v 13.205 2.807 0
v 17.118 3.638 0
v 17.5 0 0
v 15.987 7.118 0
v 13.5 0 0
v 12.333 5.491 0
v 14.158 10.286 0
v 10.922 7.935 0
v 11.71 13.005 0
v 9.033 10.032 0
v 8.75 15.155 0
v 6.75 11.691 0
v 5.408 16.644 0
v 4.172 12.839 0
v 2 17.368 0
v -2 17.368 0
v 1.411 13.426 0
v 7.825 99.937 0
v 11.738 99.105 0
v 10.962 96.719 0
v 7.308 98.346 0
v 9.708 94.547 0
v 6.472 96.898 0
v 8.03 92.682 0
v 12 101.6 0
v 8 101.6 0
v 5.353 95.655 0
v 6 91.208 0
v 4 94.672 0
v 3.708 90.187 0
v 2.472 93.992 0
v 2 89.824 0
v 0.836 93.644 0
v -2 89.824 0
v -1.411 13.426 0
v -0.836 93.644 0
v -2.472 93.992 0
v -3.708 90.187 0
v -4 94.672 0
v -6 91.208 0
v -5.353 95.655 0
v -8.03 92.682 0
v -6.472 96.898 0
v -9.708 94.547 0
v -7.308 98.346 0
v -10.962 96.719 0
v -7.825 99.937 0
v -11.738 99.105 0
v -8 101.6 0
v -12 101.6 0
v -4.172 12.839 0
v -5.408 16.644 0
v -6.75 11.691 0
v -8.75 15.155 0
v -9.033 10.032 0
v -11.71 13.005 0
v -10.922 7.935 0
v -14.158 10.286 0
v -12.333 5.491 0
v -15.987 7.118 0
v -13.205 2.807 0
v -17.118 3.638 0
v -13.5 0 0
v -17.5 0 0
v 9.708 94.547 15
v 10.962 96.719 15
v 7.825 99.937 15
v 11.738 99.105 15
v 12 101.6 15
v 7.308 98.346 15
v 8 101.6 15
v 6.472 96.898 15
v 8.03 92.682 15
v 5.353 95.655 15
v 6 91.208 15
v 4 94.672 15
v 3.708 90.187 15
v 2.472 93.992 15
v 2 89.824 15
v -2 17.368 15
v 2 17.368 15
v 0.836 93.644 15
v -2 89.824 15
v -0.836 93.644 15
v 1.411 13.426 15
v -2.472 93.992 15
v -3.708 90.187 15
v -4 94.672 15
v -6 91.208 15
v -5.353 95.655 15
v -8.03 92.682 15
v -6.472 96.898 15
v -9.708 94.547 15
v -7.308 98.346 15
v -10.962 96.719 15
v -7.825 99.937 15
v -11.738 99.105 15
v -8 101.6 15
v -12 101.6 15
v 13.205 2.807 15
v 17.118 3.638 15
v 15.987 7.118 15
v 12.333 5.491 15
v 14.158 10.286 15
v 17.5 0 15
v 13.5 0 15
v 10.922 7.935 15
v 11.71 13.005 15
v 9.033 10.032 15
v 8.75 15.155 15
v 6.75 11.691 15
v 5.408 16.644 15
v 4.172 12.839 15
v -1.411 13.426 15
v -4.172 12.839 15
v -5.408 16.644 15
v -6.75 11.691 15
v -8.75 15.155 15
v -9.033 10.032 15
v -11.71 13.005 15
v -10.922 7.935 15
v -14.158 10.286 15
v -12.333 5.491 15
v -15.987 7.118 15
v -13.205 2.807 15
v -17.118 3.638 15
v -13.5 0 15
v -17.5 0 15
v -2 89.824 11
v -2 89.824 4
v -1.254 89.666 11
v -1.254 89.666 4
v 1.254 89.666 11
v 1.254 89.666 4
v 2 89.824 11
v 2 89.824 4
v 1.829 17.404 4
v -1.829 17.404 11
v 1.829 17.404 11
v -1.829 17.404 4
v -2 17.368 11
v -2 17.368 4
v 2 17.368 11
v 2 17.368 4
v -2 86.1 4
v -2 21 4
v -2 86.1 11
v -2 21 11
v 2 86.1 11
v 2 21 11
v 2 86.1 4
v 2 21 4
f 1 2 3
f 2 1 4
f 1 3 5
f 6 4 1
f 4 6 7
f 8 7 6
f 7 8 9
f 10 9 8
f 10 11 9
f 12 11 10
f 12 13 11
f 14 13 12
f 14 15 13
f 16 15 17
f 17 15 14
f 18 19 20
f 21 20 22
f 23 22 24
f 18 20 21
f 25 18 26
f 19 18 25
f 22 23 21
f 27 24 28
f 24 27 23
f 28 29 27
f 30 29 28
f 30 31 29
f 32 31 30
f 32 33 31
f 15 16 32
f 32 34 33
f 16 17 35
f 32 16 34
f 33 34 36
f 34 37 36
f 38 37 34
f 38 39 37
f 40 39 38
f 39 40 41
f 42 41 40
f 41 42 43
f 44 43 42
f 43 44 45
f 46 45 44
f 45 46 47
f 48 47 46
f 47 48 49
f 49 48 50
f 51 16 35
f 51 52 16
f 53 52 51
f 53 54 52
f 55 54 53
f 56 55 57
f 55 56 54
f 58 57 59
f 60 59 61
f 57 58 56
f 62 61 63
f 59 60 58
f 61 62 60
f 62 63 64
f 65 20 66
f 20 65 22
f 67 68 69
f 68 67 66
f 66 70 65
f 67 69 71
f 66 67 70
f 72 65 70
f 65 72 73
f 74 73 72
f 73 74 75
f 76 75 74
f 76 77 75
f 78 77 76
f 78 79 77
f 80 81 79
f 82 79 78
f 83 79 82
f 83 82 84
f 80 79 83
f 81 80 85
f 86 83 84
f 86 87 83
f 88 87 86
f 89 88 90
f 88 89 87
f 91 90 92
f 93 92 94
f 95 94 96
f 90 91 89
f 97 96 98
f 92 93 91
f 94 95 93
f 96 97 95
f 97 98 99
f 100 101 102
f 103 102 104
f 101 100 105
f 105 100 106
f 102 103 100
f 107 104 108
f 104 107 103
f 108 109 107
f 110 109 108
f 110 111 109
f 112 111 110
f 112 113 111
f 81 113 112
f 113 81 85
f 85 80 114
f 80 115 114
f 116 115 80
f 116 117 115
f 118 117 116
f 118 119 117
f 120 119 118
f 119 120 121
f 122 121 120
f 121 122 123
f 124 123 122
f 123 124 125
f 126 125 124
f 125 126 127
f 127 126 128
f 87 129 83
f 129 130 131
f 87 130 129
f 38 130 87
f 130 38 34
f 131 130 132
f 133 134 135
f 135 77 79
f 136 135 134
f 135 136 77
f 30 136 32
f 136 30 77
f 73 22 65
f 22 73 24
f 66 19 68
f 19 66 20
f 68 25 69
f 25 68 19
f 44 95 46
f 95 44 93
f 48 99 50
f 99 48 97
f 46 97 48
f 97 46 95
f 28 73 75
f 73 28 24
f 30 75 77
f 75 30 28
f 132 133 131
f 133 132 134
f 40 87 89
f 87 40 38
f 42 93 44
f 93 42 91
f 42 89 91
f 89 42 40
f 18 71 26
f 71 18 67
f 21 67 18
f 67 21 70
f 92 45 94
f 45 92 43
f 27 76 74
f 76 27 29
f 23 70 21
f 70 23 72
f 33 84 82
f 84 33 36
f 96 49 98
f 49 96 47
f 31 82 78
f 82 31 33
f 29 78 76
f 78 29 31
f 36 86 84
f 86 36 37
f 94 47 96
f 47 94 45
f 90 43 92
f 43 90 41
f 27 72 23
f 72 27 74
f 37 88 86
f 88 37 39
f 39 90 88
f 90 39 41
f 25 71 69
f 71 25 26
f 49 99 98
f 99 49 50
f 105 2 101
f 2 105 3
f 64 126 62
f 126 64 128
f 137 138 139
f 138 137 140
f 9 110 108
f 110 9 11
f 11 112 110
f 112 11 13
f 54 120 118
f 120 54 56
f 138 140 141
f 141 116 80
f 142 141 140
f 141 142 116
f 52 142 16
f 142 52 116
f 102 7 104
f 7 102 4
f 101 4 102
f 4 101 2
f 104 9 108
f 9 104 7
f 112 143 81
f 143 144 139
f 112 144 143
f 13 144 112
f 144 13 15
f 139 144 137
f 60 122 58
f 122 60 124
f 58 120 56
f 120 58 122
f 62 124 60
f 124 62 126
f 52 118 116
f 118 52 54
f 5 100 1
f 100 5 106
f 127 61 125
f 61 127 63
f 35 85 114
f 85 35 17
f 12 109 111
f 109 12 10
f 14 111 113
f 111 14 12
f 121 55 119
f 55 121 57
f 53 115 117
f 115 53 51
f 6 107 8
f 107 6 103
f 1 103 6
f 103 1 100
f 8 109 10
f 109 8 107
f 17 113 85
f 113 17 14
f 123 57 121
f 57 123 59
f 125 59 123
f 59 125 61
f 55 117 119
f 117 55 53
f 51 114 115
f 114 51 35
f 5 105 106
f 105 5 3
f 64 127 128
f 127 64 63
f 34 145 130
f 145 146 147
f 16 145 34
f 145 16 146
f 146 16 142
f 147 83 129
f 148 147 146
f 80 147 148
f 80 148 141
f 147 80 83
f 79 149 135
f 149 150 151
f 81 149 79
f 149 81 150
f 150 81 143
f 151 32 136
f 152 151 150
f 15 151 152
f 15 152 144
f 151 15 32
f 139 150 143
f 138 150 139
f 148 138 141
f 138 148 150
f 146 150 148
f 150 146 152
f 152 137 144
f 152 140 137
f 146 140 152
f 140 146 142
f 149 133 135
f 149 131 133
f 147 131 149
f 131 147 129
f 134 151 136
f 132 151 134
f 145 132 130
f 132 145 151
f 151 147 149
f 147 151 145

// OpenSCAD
// Parallel loop conductor standoff - VE3XEC

// Secure to conductors with zip ties
// Maybe wrap conductors with silicone tape to prevent slippage

// Configuration
wall_thickness = 4; // Overall robustitude of this magnificent assemblage
spacing = 101.6; // Centre-to-centre spacing of conductors
c1_id = 27; // Inner diameter of cup 1
c2_id = 16; // Inner diameter of cup 2
zip_tie_width = 7; // Width of your zip ties; leave some tolerance
zip_tie_thickness = 5; // Thickness of your zip ties; leave some tolerance
$fn = 30; // Cylinder smooveness

// Compooted
c1_od = c1_id + (wall_thickness * 2);
c2_od = c2_id + (wall_thickness * 2);
depth = zip_tie_width + (wall_thickness * 2);

union() {
	difference() {
		cylinder(d = c1_od, h = depth);
		cylinder(d = c1_id, h = depth);
		translate([-(c1_od / 2), -(c1_od / 2), 0]) {
			cube([c1_od, c1_od / 2, depth]);
		}
	}
	translate([0, spacing, 0]) {
		difference() {
			cylinder(d = c2_od, h = depth);
			cylinder(d = c2_id, h = depth);
			translate([-(c2_od / 2), 0, 0]) {
				cube([c2_od, c2_od / 2, depth]);
			}
		}
	}
	translate([-(wall_thickness / 2), (c1_od / 2) - .5, 0]) {
		difference() {
			cube([wall_thickness, spacing - (c1_od / 2) - (c2_od / 2) + 1, depth]);
			translate([0, 0, wall_thickness]) {
				cube([wall_thickness, wall_thickness, zip_tie_width]);
			}
			translate([0, spacing - (c1_od / 2) - (c2_od / 2) - zip_tie_thickness + (wall_thickness / 2), wall_thickness]) {
				cube([wall_thickness, wall_thickness, zip_tie_width]);
			}

		}

	}
}
